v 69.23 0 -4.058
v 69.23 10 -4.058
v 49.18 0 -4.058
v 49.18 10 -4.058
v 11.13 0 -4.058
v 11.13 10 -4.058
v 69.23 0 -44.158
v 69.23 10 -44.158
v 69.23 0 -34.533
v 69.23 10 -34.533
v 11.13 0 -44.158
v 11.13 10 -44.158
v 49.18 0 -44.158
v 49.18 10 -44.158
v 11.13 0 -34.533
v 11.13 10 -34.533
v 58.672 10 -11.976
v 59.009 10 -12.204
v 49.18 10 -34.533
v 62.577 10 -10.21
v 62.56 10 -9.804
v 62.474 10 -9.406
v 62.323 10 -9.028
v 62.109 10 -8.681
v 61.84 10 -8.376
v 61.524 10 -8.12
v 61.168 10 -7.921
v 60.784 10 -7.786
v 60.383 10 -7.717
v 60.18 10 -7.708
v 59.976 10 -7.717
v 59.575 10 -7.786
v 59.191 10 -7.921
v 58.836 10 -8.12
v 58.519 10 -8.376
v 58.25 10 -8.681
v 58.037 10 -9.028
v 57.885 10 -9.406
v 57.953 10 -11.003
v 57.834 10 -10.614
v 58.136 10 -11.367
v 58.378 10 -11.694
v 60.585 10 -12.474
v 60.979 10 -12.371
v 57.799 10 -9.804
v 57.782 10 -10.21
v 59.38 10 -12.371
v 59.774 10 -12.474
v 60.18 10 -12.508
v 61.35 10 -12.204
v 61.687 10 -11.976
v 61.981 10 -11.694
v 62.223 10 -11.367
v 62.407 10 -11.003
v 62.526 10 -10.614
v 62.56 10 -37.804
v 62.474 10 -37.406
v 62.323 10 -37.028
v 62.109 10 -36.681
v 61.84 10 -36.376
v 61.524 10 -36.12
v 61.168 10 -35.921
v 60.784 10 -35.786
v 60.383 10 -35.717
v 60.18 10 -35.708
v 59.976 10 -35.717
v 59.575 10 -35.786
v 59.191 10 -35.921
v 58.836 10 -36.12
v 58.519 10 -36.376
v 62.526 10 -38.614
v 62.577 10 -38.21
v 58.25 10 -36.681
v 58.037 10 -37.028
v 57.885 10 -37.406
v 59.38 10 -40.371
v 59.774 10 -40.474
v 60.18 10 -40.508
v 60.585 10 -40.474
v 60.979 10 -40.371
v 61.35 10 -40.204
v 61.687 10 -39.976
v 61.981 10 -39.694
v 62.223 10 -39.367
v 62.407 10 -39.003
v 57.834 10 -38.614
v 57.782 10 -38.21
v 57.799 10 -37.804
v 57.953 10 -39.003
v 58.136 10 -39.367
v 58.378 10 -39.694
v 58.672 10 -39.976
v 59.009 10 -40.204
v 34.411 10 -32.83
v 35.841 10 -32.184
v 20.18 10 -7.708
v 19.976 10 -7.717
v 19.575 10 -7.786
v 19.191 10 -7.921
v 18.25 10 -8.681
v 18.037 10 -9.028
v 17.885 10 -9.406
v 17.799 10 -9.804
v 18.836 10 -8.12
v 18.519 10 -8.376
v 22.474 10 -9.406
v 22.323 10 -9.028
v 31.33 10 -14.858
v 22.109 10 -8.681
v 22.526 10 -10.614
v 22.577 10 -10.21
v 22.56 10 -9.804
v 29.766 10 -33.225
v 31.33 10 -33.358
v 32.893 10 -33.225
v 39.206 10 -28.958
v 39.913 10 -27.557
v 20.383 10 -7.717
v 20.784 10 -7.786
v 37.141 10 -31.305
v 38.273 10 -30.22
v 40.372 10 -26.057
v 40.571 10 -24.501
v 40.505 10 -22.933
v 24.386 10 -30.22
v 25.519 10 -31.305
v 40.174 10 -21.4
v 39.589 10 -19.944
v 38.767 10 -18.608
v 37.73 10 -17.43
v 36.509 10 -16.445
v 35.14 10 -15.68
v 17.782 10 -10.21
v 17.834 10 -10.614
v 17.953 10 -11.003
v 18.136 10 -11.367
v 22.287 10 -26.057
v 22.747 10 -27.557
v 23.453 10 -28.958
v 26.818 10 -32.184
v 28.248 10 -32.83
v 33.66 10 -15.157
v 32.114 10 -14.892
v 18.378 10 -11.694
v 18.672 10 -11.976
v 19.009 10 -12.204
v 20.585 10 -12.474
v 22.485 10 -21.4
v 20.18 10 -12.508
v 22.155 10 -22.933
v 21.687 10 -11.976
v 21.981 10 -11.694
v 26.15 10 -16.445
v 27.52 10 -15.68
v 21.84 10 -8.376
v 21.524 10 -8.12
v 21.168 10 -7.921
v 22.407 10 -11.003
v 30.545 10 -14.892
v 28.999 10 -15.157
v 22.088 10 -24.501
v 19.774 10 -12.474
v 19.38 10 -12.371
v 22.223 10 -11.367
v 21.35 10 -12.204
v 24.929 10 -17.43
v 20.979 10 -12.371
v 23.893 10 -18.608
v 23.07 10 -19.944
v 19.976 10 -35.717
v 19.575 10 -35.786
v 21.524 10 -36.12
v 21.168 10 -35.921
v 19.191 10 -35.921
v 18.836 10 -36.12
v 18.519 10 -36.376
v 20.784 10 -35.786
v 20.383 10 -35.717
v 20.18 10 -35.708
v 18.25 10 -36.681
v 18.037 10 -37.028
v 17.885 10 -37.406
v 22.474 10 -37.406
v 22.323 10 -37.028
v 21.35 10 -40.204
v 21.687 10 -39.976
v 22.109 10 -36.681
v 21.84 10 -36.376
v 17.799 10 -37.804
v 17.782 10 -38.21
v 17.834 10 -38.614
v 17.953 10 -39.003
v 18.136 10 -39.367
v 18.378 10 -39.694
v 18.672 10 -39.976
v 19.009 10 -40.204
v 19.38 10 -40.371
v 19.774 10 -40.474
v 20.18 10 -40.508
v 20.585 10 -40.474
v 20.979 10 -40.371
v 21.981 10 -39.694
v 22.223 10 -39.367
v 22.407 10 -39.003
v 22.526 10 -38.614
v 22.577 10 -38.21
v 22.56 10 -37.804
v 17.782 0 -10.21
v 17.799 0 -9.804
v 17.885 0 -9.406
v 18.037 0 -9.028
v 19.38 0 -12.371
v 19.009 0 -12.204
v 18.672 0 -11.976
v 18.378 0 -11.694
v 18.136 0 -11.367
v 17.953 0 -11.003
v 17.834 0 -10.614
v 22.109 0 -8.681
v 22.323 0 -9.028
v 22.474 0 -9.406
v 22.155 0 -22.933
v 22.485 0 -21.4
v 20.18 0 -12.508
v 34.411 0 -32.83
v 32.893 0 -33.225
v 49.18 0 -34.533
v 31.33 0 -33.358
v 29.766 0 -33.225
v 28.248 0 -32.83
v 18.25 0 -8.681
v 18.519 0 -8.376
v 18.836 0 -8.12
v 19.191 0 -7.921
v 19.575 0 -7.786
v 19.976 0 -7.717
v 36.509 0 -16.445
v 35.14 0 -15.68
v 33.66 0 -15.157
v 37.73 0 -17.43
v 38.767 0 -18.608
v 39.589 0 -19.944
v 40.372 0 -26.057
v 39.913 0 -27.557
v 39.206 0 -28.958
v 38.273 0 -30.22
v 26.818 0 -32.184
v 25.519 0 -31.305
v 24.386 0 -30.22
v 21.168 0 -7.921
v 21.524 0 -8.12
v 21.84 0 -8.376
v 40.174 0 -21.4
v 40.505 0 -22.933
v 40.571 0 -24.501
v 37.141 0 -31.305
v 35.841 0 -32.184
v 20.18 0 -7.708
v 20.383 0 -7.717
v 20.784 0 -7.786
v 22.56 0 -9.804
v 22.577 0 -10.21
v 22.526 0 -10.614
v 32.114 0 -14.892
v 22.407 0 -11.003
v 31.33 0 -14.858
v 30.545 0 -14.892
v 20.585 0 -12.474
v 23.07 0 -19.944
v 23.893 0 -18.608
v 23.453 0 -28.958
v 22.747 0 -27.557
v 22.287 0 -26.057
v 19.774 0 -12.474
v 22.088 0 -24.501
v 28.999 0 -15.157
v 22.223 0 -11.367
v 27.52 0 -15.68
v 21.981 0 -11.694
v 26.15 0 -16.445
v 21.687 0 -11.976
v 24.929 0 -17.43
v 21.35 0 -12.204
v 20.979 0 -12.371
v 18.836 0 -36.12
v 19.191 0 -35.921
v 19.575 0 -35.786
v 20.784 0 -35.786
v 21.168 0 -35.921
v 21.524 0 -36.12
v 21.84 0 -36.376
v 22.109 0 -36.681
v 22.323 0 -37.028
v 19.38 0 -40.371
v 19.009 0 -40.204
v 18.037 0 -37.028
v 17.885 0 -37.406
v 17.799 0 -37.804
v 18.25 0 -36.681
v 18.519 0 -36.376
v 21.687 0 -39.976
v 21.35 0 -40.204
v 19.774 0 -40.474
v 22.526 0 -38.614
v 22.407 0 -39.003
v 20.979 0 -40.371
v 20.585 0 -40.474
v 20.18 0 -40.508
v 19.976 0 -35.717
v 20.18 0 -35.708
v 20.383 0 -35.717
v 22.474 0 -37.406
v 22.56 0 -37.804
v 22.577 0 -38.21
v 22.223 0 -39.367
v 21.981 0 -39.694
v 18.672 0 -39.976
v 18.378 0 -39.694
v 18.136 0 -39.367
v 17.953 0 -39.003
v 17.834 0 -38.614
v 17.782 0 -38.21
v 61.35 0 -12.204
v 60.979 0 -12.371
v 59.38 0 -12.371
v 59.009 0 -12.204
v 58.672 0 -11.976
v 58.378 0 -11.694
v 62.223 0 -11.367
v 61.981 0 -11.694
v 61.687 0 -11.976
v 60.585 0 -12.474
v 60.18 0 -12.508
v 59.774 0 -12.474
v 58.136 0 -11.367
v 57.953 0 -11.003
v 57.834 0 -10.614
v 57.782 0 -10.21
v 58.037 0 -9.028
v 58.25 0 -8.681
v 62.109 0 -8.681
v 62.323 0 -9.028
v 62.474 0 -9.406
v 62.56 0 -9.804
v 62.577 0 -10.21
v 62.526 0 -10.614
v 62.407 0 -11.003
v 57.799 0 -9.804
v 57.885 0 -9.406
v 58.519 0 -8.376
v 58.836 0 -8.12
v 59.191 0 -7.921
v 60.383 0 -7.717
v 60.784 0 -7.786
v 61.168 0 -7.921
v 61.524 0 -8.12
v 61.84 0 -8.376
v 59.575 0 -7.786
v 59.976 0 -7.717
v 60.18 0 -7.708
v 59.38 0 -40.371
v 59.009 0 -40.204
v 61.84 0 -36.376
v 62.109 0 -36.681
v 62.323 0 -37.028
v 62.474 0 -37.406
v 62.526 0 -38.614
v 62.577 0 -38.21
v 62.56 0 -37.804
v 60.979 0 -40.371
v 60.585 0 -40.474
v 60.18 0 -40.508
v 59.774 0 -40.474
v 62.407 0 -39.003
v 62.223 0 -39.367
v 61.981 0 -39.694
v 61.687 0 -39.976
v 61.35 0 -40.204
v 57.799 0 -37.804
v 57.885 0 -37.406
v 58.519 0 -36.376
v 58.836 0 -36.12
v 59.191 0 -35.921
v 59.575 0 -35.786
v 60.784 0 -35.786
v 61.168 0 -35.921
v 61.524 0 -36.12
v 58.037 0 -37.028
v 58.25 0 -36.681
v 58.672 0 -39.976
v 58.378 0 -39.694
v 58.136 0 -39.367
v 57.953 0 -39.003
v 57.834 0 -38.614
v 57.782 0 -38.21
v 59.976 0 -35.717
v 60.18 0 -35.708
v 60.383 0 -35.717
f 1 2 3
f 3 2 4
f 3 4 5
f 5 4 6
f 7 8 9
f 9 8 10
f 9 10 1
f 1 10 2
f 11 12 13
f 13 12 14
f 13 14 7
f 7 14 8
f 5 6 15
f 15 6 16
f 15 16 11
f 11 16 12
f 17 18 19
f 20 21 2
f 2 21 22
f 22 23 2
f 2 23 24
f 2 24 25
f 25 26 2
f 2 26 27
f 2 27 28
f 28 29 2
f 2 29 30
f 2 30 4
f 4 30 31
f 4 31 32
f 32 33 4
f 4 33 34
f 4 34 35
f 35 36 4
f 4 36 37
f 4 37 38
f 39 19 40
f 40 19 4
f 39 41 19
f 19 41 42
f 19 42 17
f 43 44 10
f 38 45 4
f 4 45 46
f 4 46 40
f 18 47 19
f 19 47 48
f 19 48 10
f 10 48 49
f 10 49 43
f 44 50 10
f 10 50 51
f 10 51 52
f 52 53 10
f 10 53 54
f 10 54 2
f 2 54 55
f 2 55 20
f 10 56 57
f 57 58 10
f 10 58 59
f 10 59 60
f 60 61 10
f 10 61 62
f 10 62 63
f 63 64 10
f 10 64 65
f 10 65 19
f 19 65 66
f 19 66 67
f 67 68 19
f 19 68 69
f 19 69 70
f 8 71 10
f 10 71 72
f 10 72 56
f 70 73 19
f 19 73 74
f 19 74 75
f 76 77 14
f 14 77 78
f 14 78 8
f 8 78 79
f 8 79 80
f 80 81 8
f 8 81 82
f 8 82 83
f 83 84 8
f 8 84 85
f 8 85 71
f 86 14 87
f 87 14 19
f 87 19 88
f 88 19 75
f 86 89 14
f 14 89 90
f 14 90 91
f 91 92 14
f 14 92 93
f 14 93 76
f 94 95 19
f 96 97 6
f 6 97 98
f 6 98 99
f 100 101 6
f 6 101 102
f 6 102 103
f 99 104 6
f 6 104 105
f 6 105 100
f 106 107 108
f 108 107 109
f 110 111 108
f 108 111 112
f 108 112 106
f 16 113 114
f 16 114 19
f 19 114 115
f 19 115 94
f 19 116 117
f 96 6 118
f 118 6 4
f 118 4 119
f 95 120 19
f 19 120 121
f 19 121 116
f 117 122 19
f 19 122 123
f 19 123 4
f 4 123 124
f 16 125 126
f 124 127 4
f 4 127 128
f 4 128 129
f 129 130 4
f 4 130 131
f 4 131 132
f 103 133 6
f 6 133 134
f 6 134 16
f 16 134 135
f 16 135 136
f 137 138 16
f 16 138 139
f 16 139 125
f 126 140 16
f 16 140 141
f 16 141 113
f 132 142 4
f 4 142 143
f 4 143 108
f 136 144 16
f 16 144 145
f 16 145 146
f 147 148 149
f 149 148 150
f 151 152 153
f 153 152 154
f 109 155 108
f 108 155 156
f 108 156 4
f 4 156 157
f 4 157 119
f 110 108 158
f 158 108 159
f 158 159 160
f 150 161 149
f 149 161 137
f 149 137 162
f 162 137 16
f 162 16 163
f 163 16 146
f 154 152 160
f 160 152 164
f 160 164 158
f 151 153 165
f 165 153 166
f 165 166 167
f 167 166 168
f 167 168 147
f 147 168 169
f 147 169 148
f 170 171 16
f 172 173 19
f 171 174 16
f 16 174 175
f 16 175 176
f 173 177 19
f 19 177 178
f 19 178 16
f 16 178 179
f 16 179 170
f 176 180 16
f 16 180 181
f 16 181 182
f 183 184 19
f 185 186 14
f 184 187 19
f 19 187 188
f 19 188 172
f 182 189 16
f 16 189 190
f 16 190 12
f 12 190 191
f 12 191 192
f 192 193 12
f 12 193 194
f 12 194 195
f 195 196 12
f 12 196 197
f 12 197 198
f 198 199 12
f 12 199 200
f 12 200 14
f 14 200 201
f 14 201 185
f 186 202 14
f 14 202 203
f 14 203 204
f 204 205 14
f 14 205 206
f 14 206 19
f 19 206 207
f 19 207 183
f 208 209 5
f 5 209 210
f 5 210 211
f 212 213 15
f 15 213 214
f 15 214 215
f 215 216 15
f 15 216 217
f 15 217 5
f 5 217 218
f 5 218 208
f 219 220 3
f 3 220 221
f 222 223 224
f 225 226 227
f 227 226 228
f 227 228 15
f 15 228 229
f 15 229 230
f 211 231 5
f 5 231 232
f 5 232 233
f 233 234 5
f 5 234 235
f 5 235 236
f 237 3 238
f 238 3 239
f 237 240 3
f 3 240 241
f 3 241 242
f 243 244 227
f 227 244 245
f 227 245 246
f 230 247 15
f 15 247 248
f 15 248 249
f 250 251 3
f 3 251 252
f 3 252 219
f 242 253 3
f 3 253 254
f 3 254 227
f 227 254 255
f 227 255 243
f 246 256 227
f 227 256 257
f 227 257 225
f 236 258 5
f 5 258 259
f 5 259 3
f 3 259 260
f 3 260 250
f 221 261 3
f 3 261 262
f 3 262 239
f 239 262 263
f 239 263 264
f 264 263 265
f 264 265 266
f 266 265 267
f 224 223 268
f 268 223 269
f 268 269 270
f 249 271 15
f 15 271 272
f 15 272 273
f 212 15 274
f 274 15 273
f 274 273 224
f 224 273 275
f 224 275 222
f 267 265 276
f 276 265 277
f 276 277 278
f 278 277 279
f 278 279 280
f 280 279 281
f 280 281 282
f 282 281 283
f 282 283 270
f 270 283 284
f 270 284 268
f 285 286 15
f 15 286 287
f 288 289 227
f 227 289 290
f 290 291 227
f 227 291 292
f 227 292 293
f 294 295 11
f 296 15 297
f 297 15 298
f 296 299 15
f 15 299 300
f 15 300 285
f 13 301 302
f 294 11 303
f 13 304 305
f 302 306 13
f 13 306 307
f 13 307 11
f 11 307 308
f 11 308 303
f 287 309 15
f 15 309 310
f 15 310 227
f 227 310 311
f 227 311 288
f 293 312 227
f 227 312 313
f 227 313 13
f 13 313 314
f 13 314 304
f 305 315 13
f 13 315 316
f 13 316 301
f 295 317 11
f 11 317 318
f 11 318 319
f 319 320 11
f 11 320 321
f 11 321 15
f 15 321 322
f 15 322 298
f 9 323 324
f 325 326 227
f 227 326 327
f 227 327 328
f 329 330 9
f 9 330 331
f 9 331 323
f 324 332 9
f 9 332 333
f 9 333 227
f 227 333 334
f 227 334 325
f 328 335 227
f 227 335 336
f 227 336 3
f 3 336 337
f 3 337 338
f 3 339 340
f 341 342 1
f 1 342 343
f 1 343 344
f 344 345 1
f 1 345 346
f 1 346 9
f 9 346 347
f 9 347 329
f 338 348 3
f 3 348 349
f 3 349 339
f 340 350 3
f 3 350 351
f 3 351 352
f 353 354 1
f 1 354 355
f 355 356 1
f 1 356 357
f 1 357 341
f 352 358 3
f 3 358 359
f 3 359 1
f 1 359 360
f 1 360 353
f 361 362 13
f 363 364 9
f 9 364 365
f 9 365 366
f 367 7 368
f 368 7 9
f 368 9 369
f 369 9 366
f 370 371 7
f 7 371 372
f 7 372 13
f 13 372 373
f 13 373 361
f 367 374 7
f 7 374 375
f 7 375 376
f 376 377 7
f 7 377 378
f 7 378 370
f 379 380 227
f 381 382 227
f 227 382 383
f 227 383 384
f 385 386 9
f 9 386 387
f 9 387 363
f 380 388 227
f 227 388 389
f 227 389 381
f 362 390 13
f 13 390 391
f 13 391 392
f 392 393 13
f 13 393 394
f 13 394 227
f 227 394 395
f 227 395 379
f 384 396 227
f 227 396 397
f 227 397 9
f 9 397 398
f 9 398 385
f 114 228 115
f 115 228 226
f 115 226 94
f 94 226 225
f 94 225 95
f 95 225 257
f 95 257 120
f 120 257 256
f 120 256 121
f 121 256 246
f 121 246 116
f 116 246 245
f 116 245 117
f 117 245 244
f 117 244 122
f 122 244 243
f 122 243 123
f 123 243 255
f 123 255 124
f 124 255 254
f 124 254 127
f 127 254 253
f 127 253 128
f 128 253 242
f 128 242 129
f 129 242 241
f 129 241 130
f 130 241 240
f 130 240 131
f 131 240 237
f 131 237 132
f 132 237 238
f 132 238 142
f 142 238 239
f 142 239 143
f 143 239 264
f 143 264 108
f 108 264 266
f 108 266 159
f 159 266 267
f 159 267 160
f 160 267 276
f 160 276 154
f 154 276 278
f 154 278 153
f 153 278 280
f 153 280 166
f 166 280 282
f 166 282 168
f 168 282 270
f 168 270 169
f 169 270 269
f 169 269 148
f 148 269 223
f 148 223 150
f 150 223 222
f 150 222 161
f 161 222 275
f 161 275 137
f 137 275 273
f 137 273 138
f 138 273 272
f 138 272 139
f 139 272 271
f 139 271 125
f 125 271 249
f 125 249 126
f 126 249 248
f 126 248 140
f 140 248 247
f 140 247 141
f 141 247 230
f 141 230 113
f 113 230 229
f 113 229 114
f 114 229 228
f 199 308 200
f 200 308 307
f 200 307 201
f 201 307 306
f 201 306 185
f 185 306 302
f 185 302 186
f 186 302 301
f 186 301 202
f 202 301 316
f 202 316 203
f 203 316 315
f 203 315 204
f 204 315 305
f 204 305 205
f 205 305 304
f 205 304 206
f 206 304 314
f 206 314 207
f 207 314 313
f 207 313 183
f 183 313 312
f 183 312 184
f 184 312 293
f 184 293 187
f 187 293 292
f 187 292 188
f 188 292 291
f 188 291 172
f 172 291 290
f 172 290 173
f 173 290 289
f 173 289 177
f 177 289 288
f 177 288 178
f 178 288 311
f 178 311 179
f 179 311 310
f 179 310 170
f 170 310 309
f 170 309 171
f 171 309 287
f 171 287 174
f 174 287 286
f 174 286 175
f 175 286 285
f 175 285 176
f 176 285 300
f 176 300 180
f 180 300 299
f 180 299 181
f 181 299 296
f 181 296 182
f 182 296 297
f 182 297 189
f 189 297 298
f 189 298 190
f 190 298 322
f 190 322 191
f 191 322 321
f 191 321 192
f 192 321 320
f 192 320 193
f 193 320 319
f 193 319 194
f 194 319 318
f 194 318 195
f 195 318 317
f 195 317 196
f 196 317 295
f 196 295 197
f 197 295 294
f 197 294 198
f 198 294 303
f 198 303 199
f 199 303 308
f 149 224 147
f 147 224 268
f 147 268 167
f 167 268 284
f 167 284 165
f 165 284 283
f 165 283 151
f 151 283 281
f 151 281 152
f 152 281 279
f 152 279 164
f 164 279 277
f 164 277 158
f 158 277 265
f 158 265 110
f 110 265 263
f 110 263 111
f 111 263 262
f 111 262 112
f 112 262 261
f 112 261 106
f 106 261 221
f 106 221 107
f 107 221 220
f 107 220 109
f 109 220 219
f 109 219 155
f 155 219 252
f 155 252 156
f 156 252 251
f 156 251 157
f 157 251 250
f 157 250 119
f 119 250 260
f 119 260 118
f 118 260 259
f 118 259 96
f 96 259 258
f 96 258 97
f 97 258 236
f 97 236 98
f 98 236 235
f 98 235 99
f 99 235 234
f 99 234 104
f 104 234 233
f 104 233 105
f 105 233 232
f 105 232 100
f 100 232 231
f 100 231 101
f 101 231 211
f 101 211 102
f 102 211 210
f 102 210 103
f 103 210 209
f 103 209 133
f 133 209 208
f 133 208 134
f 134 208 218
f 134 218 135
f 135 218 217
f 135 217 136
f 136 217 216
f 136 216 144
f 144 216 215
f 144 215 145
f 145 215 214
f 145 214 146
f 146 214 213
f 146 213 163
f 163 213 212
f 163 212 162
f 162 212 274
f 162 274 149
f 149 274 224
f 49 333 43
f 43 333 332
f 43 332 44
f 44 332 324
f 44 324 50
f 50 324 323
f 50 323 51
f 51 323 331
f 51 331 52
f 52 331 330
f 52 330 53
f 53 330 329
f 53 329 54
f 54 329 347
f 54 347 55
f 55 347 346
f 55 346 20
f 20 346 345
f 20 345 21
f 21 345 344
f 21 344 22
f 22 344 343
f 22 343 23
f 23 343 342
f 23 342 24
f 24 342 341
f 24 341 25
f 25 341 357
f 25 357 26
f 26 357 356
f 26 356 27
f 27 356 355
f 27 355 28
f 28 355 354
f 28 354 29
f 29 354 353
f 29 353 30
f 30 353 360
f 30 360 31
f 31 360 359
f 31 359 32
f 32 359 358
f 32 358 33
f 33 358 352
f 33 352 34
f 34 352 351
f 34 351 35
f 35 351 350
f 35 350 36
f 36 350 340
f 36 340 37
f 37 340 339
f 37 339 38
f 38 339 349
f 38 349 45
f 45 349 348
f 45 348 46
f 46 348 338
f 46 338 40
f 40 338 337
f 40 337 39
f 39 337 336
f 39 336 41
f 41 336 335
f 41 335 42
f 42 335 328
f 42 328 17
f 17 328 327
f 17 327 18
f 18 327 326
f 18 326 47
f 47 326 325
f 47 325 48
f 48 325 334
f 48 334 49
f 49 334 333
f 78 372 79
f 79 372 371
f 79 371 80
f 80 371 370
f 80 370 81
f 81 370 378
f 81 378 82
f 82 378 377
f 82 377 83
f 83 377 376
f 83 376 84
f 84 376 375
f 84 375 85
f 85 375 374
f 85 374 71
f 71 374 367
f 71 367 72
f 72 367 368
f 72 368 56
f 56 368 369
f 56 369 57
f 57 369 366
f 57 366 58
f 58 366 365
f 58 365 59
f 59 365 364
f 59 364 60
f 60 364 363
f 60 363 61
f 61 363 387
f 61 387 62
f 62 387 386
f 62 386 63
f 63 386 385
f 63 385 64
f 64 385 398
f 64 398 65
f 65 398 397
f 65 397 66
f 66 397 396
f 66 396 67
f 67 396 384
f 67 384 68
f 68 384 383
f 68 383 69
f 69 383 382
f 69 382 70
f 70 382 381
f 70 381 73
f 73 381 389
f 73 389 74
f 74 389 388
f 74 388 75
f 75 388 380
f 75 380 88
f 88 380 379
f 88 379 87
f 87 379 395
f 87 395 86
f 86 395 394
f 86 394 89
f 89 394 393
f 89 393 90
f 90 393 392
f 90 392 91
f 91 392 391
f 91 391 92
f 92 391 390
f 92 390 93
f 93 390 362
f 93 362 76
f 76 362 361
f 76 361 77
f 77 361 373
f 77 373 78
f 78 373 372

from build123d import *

# Parameters (mm, degrees)
SKETCH1_W           = 58.1
SKETCH1_H           = 40.1
BOSS_EXTRUDE1_DEPTH = 10
SKETCH1_7_R         = 9.25
CUT_EXTRUDE1_DEPTH  = 10
SKETCH1_8_R         = 2.4
CUT_EXTRUDE2_DEPTH  = 10


with BuildPart() as part:
    # Sketch1 → Boss-Extrude1 (new body)
    with BuildSketch(Plane(origin=(0, 0, 0), x_dir=(1, 0, 0), z_dir=(0, 1, 0))):
        with Locations((40.179637899, 24.108385802)):
            Rectangle(SKETCH1_W, SKETCH1_H)
    extrude(amount=BOSS_EXTRUDE1_DEPTH)

    # Sketch1<7> → Cut-Extrude1 (cut)
    with BuildSketch(Plane(origin=(0, 0, 0), x_dir=(1, 0, 0), z_dir=(0, 1, 0))):
        with Locations((31.329637899, 24.108385802)):
            Circle(SKETCH1_7_R)
    extrude(amount=CUT_EXTRUDE1_DEPTH, mode=Mode.SUBTRACT)

    # Sketch1<8> → Cut-Extrude2 (cut)
    with BuildSketch(Plane(origin=(0, 0, 0), x_dir=(1, 0, 0), z_dir=(0, 1, 0))):
        with Locations((20.179637899, 38.108385802)):
            Circle(SKETCH1_8_R)
        with Locations((60.179637899, 38.108385802)):
            Circle(SKETCH1_8_R)
        with Locations((20.179637899, 10.108385802)):
            Circle(SKETCH1_8_R)
        with Locations((60.179637899, 10.108385802)):
            Circle(SKETCH1_8_R)
    extrude(amount=CUT_EXTRUDE2_DEPTH, mode=Mode.SUBTRACT)


solid = part.part
